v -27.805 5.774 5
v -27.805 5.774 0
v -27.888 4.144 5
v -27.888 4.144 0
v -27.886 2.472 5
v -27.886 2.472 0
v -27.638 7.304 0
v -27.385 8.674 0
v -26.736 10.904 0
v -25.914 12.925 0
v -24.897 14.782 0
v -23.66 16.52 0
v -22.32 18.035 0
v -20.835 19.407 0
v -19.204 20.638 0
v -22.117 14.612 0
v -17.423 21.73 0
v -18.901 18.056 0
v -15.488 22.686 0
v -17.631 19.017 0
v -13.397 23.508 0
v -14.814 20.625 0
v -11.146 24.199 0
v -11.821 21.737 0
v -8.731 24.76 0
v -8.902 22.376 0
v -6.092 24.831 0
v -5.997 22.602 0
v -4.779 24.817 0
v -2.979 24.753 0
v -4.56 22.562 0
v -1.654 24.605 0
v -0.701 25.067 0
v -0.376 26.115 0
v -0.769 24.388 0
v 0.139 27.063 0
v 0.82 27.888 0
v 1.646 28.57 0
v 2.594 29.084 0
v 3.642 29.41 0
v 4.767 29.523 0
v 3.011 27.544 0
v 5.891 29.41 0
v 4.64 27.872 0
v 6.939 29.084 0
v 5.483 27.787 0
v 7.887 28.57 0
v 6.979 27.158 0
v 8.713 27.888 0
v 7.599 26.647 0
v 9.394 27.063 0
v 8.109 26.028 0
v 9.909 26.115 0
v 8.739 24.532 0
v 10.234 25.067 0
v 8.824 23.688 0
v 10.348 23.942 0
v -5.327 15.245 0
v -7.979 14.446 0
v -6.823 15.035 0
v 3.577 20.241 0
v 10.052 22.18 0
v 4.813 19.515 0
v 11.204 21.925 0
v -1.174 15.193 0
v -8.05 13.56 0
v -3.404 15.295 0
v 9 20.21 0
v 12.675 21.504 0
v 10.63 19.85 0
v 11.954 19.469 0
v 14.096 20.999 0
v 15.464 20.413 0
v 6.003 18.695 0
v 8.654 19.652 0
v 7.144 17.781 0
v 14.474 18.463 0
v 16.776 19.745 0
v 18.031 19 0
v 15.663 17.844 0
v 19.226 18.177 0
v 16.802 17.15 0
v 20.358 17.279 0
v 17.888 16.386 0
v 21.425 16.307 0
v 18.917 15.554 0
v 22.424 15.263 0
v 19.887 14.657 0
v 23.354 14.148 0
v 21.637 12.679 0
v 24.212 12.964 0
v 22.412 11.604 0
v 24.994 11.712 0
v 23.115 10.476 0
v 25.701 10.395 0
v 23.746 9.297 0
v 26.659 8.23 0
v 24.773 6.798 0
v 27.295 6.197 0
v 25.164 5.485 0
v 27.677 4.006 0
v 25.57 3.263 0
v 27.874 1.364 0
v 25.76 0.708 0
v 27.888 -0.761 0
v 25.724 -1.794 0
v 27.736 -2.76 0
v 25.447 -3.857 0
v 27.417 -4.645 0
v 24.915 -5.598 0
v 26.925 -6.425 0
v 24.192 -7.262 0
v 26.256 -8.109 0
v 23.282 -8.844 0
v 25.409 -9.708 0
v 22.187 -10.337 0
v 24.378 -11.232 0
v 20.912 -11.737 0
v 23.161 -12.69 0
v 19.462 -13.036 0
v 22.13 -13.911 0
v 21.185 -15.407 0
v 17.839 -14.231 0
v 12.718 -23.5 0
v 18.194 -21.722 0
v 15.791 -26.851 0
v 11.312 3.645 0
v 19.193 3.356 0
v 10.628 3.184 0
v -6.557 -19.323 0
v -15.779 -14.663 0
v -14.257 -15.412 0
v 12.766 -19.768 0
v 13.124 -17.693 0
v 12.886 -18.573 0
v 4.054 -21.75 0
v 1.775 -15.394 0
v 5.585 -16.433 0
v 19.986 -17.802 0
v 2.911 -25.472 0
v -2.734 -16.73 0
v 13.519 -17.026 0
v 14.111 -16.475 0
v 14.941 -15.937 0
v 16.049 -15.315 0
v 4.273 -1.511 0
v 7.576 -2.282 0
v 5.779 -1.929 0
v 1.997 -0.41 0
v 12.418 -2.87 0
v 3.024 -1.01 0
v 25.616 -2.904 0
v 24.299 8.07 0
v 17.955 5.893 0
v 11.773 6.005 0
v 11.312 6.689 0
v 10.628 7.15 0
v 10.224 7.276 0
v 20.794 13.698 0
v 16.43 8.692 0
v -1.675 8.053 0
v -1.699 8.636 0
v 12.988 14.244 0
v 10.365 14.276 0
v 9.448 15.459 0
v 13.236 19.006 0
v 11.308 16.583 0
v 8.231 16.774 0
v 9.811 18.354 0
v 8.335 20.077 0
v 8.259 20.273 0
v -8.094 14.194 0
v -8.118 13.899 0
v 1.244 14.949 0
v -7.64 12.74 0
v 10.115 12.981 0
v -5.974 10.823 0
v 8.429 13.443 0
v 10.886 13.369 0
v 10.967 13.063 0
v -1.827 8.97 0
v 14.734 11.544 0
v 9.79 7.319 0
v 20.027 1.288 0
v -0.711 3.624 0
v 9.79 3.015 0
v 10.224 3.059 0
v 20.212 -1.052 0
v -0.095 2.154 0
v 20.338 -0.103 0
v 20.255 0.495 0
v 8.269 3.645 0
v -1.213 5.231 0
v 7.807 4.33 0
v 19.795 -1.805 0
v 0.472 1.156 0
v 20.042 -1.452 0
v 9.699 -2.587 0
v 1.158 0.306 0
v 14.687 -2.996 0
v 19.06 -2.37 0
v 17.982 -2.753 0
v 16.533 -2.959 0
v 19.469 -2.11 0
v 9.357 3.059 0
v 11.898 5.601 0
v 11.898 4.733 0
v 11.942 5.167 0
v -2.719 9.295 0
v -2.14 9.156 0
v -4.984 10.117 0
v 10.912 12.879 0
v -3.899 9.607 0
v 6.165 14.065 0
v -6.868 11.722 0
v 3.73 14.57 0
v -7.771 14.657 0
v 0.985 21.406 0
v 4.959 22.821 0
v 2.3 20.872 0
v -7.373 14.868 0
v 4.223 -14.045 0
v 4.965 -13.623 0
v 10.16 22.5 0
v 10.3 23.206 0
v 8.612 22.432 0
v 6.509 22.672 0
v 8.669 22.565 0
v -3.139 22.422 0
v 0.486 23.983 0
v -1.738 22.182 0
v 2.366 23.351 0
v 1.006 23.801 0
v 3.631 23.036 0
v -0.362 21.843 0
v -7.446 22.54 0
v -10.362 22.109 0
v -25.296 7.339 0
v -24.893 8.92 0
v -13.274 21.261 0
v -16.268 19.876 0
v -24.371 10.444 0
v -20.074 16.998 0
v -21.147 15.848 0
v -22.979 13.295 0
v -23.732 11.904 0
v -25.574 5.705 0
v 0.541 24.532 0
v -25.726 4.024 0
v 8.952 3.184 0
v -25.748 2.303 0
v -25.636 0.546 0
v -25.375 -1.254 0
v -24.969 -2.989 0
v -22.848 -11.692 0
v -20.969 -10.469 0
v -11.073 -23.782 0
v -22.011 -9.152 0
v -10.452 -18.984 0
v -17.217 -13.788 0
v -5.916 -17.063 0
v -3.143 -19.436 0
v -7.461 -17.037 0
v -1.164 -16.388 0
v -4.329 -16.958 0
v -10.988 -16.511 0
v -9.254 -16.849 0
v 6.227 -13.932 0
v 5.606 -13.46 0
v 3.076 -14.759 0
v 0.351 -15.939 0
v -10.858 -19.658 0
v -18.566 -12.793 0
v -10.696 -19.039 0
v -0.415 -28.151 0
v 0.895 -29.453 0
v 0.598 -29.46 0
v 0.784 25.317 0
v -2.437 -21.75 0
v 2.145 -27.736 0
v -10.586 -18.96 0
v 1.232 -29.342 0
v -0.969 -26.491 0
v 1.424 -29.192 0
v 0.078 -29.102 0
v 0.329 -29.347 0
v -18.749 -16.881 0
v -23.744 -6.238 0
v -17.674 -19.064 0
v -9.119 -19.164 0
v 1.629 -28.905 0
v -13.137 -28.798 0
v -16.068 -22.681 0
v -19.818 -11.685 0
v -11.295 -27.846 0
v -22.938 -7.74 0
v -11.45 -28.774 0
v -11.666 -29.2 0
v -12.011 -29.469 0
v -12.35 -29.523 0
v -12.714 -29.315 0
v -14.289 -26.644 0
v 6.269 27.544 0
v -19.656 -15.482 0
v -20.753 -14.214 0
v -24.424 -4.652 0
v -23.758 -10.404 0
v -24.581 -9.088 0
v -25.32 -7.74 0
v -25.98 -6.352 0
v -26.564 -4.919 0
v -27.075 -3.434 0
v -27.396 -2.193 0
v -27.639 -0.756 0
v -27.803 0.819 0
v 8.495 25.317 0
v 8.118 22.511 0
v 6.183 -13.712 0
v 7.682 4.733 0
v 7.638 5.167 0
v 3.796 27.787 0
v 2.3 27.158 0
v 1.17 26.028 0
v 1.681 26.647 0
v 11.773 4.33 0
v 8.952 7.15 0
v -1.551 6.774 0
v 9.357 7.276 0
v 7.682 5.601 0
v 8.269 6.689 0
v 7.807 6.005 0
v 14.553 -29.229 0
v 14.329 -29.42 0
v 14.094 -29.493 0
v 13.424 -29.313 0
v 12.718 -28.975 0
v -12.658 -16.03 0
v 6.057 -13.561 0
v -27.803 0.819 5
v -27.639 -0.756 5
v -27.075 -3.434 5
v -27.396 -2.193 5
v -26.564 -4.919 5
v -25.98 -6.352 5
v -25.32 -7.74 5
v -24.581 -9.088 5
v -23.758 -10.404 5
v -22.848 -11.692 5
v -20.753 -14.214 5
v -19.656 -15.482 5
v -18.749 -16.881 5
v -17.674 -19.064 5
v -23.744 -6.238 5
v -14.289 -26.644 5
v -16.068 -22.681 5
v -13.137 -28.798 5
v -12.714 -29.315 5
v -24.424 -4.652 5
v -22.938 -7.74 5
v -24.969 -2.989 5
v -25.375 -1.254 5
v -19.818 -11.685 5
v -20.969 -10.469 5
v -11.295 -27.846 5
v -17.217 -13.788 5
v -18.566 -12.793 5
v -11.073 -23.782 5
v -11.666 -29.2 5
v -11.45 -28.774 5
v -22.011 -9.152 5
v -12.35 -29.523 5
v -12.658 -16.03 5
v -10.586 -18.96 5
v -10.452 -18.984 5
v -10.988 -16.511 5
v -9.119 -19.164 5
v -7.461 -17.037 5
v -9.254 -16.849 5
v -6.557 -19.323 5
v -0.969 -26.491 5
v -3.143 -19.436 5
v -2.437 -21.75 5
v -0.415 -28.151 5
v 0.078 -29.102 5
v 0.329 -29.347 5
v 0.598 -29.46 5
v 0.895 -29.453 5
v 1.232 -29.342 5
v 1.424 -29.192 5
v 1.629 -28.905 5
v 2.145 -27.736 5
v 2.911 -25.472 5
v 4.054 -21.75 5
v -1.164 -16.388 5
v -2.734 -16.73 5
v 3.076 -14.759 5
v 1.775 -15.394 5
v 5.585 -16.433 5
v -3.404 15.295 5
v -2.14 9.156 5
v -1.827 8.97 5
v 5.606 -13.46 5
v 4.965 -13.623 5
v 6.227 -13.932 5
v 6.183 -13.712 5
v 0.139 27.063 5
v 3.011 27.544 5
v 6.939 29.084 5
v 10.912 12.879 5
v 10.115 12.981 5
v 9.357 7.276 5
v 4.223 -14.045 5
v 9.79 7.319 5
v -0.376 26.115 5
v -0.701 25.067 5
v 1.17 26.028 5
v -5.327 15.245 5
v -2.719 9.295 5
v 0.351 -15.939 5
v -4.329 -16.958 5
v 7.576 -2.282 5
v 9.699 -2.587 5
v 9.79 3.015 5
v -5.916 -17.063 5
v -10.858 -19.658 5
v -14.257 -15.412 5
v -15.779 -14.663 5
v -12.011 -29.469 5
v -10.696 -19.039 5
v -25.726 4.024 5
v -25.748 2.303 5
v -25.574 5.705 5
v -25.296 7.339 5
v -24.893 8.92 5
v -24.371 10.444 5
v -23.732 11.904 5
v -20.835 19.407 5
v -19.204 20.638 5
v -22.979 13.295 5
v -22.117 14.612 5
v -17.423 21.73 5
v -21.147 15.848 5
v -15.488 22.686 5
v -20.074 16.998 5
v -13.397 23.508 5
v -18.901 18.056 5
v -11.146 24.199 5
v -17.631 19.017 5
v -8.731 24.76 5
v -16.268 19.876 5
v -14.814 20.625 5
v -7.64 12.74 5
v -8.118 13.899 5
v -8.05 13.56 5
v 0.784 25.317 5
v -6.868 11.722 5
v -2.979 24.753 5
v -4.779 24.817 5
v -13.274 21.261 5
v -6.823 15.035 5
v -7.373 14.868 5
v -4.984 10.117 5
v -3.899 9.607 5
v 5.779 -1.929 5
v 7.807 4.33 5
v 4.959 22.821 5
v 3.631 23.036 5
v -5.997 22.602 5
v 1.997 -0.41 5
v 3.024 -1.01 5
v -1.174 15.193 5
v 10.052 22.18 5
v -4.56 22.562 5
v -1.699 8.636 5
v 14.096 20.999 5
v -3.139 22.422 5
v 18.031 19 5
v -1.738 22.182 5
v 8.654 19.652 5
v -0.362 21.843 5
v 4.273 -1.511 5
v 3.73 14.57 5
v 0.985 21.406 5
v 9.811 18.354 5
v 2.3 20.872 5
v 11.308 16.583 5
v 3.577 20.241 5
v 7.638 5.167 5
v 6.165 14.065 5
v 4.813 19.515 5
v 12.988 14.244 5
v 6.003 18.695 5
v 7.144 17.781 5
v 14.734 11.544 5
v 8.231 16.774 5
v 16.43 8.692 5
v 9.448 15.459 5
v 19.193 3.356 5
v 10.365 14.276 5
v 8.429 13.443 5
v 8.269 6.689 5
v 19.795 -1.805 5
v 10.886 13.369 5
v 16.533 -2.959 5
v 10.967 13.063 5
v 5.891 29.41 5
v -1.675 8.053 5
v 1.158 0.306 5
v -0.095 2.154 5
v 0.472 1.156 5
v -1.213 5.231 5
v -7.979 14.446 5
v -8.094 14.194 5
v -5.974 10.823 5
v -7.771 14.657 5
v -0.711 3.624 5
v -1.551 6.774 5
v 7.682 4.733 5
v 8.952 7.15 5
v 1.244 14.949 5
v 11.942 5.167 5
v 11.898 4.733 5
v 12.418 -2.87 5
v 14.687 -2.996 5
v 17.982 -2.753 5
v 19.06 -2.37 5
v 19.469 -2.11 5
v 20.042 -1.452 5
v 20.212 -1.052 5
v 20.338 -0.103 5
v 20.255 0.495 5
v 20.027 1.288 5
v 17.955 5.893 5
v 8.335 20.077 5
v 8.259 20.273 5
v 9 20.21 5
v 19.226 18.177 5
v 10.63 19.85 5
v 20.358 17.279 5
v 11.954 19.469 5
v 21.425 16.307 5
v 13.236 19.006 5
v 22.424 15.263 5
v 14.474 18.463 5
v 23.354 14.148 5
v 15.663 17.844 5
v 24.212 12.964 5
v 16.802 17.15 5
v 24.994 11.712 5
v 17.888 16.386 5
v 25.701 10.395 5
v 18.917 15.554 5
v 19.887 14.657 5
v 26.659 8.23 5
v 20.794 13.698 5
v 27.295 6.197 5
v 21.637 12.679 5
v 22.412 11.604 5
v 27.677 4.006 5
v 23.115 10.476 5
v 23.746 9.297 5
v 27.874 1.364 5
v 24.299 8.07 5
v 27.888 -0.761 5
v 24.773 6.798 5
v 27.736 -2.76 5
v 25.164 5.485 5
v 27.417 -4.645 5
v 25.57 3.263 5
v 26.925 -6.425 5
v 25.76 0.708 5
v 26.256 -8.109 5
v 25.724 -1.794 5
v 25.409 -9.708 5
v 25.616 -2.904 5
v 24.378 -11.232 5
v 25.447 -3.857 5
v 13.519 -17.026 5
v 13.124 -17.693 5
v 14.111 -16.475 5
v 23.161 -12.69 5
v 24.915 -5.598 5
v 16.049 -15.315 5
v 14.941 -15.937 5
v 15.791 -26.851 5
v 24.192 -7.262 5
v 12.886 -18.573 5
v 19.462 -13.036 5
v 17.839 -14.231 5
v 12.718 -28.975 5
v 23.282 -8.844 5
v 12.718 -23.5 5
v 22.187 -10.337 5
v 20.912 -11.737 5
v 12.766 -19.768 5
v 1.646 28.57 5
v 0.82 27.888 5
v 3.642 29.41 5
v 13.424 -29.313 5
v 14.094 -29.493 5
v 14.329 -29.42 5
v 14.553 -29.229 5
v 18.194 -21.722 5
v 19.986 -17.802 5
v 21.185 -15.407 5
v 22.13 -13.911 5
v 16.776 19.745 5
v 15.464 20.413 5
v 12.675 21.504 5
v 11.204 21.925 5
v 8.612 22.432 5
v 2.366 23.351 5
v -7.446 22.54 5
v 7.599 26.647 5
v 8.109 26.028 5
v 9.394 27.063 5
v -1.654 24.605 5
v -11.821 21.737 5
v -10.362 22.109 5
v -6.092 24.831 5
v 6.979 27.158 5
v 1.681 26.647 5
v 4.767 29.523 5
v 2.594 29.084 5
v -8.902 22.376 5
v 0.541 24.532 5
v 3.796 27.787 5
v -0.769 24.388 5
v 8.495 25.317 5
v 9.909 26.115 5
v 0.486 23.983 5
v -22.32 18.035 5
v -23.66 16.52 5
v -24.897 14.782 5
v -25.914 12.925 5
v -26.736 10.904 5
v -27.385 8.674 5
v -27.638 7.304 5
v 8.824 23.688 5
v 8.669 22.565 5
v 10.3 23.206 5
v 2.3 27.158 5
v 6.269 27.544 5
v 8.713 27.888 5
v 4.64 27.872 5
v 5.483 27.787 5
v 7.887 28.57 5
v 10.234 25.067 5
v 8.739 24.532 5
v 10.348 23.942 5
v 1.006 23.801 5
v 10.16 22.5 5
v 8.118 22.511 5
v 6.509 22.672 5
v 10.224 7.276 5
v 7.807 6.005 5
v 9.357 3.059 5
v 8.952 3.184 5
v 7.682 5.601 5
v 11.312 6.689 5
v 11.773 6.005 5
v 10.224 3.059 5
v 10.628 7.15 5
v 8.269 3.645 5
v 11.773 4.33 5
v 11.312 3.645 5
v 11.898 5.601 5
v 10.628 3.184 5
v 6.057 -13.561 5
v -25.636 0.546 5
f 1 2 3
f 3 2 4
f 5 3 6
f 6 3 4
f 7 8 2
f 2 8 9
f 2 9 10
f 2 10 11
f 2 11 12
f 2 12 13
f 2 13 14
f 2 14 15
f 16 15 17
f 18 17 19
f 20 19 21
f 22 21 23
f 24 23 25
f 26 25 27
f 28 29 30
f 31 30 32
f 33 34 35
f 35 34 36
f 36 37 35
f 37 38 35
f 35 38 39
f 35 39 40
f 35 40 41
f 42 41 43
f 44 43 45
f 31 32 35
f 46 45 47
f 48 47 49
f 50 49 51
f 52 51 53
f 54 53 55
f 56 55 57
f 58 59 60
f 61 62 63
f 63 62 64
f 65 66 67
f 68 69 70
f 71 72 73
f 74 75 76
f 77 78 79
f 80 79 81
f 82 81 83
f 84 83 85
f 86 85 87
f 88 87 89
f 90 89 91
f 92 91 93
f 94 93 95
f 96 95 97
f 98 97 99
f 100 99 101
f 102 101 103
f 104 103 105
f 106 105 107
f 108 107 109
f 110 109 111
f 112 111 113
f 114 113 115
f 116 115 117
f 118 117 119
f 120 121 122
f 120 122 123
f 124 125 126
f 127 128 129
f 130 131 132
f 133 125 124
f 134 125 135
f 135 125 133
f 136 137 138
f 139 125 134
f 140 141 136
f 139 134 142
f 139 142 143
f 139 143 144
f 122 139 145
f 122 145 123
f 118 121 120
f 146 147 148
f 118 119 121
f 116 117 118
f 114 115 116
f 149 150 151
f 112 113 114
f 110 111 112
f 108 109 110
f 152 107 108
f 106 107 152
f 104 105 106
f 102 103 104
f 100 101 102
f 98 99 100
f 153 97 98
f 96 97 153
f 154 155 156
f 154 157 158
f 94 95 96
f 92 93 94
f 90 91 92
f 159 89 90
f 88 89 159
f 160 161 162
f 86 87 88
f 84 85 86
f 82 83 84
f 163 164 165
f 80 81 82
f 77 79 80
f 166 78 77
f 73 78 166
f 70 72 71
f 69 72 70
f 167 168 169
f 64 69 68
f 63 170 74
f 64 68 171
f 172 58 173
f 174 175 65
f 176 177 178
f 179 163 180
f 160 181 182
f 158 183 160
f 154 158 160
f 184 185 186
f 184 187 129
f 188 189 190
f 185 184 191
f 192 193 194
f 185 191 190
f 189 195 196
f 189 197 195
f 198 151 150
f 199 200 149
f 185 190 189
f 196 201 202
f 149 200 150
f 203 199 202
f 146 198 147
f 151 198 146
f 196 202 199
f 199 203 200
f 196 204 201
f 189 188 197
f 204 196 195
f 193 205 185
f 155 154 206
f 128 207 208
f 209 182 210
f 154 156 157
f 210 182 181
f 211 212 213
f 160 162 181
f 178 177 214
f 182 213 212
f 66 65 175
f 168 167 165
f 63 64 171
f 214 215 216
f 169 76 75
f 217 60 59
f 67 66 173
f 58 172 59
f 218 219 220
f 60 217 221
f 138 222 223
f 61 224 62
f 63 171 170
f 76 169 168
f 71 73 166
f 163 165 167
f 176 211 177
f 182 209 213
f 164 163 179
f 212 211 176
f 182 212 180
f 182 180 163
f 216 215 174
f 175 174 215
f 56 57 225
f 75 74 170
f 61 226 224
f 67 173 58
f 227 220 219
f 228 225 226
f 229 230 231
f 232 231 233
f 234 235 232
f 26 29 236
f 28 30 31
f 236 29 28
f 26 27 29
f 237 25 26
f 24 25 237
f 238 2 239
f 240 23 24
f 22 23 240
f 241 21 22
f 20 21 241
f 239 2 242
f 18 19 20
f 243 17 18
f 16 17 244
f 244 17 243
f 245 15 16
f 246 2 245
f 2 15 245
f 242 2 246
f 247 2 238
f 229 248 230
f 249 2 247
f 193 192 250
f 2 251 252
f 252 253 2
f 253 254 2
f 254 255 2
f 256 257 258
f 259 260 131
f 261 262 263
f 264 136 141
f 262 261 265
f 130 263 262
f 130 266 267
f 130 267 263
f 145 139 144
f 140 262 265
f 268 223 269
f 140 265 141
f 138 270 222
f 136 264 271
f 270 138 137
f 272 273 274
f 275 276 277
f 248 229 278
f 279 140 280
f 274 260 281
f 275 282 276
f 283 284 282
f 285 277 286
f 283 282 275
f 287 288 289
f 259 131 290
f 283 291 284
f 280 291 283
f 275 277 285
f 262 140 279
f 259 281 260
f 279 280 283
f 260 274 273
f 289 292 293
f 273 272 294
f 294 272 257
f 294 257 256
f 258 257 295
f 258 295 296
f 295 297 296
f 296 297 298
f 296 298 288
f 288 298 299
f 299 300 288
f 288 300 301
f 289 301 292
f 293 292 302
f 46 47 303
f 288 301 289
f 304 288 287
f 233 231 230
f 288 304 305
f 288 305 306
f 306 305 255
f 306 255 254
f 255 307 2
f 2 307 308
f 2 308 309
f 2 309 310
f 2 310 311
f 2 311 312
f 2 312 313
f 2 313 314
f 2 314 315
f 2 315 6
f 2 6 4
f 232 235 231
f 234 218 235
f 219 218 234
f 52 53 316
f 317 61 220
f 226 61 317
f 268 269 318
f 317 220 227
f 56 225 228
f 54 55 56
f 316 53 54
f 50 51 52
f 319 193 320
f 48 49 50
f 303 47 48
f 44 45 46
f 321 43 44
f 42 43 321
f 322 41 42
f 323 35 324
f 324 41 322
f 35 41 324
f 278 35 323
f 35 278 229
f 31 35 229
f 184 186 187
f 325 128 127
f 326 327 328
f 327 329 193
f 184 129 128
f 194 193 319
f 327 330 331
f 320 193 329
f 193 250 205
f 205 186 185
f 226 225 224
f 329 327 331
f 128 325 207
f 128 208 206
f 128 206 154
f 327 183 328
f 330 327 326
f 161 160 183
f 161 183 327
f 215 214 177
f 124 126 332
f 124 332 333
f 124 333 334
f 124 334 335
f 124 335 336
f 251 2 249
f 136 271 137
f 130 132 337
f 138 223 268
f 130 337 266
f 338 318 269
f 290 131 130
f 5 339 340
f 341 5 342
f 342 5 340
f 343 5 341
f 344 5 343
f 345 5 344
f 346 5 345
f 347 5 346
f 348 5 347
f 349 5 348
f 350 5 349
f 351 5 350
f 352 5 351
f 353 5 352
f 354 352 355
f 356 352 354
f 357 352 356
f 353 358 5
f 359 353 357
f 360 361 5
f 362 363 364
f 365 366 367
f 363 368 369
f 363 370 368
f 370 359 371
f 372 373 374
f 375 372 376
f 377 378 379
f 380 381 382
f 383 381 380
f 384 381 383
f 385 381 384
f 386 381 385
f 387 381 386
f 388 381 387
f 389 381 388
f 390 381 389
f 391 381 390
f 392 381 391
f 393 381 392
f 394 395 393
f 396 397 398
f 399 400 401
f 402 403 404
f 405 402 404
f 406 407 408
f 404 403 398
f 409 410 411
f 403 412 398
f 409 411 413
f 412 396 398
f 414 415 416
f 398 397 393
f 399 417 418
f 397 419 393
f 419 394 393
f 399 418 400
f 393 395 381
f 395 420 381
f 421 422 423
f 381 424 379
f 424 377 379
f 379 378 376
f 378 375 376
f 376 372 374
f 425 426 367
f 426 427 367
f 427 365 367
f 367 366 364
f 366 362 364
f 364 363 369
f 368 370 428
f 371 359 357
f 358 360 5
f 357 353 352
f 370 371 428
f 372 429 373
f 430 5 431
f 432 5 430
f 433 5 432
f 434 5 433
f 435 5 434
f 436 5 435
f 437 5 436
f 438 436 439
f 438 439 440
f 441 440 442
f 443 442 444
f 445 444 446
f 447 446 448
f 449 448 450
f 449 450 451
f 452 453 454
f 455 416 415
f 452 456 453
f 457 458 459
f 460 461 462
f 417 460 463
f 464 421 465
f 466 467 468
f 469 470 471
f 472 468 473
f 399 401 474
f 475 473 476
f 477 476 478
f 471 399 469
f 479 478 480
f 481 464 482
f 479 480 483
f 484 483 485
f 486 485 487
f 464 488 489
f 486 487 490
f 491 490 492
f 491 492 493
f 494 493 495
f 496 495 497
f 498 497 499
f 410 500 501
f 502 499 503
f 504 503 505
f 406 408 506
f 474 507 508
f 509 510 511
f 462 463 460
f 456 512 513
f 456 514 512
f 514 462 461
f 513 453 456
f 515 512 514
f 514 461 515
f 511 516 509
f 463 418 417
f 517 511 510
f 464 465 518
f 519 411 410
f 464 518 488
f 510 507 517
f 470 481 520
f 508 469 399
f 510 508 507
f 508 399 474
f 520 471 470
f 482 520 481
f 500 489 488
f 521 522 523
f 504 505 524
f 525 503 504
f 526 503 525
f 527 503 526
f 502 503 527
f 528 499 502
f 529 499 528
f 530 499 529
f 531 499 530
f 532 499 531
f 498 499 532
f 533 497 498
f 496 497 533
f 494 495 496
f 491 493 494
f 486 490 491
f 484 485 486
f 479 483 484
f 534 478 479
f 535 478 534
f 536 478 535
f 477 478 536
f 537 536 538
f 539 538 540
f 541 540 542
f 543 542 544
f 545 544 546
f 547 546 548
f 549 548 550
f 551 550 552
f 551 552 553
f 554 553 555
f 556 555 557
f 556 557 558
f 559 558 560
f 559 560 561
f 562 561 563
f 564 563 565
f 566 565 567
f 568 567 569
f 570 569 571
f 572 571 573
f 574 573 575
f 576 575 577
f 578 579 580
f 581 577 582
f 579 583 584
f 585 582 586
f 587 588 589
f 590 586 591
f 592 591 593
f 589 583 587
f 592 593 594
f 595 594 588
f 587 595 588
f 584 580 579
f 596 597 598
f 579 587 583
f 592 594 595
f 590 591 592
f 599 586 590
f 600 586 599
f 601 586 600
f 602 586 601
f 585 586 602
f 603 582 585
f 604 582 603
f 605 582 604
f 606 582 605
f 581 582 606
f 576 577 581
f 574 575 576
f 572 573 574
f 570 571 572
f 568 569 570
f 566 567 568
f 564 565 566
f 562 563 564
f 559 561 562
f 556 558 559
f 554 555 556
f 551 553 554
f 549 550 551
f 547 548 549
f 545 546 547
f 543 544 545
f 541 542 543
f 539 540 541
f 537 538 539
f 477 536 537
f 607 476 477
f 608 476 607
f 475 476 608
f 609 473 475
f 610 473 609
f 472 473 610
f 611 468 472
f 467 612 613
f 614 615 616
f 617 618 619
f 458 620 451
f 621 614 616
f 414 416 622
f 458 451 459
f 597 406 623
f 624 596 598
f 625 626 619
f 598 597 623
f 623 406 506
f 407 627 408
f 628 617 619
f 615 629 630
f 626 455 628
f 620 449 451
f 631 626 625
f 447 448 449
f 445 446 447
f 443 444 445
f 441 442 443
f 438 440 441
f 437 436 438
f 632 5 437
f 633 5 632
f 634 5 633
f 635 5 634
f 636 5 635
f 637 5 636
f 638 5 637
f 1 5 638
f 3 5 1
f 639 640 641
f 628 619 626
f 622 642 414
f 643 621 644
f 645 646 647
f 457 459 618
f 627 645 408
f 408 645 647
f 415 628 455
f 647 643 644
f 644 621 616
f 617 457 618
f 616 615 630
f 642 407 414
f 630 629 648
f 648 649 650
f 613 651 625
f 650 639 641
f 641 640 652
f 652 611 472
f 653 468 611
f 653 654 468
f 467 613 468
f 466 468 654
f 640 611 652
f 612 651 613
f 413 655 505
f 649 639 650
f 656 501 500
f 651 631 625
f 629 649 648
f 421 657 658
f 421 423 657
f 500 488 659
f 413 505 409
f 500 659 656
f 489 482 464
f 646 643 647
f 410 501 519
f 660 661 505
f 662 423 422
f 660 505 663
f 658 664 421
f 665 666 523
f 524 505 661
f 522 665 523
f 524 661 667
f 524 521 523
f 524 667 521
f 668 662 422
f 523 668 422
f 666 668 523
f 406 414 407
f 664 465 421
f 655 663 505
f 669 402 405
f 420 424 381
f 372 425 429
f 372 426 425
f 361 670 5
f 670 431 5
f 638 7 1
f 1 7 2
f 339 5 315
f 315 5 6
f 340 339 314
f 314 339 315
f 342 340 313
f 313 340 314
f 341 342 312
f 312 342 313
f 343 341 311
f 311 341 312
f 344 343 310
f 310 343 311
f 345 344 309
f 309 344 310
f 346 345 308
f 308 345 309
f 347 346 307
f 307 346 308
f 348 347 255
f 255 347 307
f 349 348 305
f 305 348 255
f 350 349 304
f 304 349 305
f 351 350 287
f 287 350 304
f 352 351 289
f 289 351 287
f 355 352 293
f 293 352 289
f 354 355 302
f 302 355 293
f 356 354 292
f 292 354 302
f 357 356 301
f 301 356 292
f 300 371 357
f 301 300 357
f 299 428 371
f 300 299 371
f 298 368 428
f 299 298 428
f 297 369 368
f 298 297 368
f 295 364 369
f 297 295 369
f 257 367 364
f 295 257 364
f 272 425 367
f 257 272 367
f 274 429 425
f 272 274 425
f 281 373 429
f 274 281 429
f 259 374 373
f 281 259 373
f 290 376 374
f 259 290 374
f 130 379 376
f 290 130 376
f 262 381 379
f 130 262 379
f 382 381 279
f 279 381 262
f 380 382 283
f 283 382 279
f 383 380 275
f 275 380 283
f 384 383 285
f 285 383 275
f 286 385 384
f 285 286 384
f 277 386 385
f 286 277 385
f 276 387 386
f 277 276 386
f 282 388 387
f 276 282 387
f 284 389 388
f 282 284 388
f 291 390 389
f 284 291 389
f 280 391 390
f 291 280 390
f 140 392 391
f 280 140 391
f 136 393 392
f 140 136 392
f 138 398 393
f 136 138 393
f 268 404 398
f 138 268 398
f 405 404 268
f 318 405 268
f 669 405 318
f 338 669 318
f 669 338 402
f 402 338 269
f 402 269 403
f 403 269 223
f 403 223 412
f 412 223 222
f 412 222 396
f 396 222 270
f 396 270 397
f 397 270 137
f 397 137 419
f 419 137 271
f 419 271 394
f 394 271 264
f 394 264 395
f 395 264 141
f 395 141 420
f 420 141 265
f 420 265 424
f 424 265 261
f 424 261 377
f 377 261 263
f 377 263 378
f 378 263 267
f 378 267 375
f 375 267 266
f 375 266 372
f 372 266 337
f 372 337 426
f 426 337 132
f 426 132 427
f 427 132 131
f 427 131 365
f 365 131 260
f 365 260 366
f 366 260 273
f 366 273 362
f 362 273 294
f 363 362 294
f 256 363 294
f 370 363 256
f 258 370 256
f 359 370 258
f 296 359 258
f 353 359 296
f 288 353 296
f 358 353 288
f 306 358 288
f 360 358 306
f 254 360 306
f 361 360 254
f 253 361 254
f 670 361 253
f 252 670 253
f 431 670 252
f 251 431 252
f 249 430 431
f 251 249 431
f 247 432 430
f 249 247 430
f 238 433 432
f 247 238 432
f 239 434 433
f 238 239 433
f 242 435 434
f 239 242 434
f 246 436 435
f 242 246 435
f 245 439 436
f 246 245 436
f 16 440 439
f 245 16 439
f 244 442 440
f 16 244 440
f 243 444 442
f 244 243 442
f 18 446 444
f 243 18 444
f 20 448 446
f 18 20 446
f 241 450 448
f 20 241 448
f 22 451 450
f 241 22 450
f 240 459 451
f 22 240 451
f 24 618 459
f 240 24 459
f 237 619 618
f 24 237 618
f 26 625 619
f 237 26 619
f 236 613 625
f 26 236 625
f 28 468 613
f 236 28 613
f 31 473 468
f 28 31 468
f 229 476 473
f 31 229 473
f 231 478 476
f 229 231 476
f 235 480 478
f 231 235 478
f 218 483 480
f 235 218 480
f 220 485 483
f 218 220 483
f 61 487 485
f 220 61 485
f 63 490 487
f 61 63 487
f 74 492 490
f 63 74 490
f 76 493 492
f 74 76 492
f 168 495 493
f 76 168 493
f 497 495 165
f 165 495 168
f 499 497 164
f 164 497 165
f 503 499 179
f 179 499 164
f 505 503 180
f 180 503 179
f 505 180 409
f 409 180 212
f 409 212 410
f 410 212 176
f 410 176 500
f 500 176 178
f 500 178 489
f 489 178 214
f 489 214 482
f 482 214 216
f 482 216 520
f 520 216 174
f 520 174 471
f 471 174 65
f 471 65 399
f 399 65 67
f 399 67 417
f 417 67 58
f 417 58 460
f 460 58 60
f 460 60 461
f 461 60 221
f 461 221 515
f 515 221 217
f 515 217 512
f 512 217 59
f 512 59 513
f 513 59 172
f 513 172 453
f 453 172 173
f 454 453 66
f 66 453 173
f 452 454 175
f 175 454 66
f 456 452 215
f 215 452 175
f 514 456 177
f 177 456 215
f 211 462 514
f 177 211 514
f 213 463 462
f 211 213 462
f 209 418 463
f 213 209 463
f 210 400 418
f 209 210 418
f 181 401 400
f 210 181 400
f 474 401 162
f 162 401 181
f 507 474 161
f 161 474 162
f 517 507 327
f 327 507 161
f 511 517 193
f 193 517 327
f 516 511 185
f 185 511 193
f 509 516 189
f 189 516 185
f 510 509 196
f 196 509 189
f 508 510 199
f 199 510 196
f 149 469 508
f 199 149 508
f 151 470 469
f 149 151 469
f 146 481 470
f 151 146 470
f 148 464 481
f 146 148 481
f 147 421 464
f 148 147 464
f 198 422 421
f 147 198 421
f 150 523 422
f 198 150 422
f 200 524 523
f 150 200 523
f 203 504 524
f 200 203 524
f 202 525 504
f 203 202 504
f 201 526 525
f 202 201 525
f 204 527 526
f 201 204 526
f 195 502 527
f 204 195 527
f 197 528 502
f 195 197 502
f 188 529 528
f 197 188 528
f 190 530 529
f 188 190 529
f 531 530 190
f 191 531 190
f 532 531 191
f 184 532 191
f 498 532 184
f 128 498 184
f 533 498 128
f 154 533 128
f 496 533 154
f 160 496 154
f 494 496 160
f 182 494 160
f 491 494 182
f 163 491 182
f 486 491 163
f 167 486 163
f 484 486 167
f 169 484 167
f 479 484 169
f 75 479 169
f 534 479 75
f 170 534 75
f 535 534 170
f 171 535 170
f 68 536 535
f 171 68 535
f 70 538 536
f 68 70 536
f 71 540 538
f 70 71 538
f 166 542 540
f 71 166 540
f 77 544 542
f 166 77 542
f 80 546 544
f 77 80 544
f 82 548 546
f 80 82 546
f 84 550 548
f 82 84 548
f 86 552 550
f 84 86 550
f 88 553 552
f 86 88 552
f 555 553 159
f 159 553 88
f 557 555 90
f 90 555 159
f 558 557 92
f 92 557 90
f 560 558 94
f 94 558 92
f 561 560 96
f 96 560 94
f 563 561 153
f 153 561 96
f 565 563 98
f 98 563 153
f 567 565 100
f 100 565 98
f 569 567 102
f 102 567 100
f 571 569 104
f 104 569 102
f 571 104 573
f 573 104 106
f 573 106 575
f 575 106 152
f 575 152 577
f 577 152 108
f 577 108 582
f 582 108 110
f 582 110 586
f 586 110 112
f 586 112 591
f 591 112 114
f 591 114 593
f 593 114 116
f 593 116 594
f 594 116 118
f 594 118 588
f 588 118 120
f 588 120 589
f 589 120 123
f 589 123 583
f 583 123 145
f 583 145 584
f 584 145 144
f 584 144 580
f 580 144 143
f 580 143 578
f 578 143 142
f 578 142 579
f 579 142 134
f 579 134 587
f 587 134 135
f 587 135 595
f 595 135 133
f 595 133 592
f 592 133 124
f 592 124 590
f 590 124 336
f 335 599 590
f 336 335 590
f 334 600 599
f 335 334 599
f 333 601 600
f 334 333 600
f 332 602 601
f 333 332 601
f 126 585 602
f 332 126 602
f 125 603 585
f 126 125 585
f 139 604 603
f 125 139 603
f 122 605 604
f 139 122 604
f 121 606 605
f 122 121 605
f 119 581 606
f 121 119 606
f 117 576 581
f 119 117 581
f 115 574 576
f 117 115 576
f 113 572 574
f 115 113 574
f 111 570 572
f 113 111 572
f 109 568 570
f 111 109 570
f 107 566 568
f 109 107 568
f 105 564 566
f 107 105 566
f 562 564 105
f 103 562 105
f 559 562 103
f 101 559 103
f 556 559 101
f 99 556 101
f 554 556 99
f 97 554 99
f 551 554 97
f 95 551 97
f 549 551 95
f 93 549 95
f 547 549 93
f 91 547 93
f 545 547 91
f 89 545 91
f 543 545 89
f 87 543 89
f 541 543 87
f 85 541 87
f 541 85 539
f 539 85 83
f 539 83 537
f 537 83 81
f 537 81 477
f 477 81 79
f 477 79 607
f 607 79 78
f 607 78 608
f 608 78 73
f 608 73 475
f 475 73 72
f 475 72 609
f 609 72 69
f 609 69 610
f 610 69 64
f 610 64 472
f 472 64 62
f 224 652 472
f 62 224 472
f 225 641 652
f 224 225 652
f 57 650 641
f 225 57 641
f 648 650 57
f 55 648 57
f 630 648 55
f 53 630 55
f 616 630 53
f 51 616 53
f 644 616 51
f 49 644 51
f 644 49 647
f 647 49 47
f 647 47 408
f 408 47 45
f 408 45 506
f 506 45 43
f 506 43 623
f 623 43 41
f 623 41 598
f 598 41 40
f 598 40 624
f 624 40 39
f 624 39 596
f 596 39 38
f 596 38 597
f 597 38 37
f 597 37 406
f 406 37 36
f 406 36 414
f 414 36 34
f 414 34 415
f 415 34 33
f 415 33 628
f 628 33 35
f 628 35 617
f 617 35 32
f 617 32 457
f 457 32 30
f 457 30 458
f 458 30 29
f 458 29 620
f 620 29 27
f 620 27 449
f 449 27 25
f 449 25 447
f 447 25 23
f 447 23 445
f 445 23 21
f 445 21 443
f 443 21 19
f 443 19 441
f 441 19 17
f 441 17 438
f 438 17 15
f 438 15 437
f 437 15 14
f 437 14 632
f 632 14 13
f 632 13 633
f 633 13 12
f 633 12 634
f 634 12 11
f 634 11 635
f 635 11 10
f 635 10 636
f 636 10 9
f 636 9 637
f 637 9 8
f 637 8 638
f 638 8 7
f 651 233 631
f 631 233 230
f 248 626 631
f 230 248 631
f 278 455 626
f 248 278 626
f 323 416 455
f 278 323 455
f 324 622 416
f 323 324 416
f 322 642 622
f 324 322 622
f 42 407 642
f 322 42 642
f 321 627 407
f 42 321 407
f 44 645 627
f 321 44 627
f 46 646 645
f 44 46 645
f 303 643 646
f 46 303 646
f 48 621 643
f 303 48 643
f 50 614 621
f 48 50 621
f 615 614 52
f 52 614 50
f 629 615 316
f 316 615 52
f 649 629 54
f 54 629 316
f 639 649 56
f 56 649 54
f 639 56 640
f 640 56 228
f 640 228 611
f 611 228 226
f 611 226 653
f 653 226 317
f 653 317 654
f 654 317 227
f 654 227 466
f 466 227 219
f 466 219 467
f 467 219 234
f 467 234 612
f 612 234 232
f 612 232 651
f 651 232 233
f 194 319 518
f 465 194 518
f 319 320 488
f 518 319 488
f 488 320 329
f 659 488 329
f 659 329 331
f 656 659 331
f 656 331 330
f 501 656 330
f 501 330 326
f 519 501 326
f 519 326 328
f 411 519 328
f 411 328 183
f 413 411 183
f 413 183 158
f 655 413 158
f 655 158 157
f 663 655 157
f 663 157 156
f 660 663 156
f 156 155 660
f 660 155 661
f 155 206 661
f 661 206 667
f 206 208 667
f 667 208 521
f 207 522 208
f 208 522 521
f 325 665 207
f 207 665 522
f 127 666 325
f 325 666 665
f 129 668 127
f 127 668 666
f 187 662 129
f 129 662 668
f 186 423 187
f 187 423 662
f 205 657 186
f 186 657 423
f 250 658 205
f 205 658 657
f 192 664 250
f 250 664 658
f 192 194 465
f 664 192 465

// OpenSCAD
fudge = 0.1;

module poly_path2982(h)
{
  scale([25.4/90, -25.4/90, 1]) union()
  {
    linear_extrude(height=h)
      polygon([[16.889746,-104.609375],[12.904391,-104.207618],[9.192420,-103.055359],[5.833352,-101.232118],[2.906706,-98.817416],[0.492003,-95.890770],[-1.331238,-92.531702],[-2.483497,-88.819730],[-2.885254,-84.834375],[-2.885254,-84.709375],[1.639746,-83.534375],[1.614746,-83.934375],[1.915796,-86.923123],[2.779282,-89.706394],[4.145711,-92.224694],[5.955591,-94.418531],[8.149428,-96.228410],[10.667728,-97.594840],[13.450999,-98.458326],[16.439746,-98.759375],[19.428494,-98.458326],[22.211764,-97.594840],[24.730064,-96.228410],[26.923901,-94.418531],[28.733781,-92.224694],[30.100210,-89.706394],[30.963697,-86.923123],[31.264746,-83.934375],[30.718352,-79.955864],[29.189746,-76.384375],[34.114746,-75.109375],[35.199021,-77.343335],[35.999379,-79.722971],[36.494921,-82.227059],[36.664746,-84.834375],[36.262989,-88.819730],[35.110730,-92.531702],[33.287489,-95.890770],[30.872786,-98.817416],[27.946141,-101.232118],[24.587072,-103.055359],[20.875101,-104.207618],[16.889746,-104.609375]]);
  }
}

module poly_path8(h)
{
  scale([25.4/90, -25.4/90, 1]) union()
  {
    difference()
    {
       linear_extrude(height=h)
         polygon([[-21.585254,-87.984375],[-30.935254,-87.734375],[-39.491895,-85.745508],[-47.469629,-83.298437],[-54.880176,-80.384961],[-61.735254,-76.996875],[-68.046582,-73.125977],[-73.825879,-68.764062],[-79.084863,-63.902930],[-83.835254,-58.534375],[-88.218066,-52.376562],[-91.822754,-45.796875],[-94.733691,-38.635937],[-97.035254,-30.734375],[-97.931348,-25.880469],[-98.522754,-20.459375],[-98.814160,-14.682031],[-98.810254,-8.759375],[-98.515723,-2.902344],[-97.935254,2.678125],[-97.073535,7.771094],[-95.935254,12.165625],[-94.123730,17.428711],[-92.055566,22.507813],[-89.717871,27.425195],[-87.097754,32.203125],[-84.182324,36.863867],[-80.958691,41.429688],[-73.535254,50.365625],[-69.647754,54.856250],[-66.435254,59.815625],[-62.622754,67.550000],[-56.935254,80.365625],[-50.630566,94.409375],[-46.547754,102.040625],[-45.049512,103.873437],[-43.758691,104.609375],[-42.559277,104.417188],[-41.335254,103.465625],[-40.571191,101.956250],[-40.022754,98.665625],[-39.235254,84.265625],[-38.472754,69.653125],[-37.899316,67.460938],[-37.511230,67.179883],[-37.035254,67.265625],[-32.310254,67.903125],[-23.235254,68.465625],[-11.135254,68.865625],[-8.635254,77.065625],[-3.435254,93.865625],[-1.471191,99.746875],[0.277246,103.115625],[1.167285,103.986719],[2.119434,104.384375],[3.172363,104.360156],[4.364746,103.965625],[5.044629,103.437305],[5.772559,102.420313],[7.602246,98.278125],[10.313184,90.254688],[14.364746,77.065625],[19.789746,58.228125],[22.064746,49.365625],[21.907324,48.587109],[21.461621,48.050000],[19.864746,47.690625],[17.592871,48.268750],[14.964746,49.765625],[10.901270,52.296484],[6.288184,54.543750],[1.241504,56.476953],[-4.122754,58.065625],[-9.688574,59.279297],[-15.339941,60.087500],[-20.960840,60.459766],[-26.435254,60.365625],[-32.788989,59.700024],[-38.935449,58.504883],[-44.852515,56.801440],[-50.518066,54.610938],[-55.909985,51.954614],[-61.006152,48.853711],[-65.784448,45.329468],[-70.222754,41.403125],[-74.298950,37.095923],[-77.990918,32.429102],[-81.276538,27.423901],[-84.133691,22.101563],[-86.540259,16.483325],[-88.474121,10.590430],[-89.913159,4.444116],[-90.835254,-1.934375],[-91.232153,-8.159570],[-91.155762,-14.259375],[-90.617944,-20.213867],[-89.630566,-26.003125],[-88.205493,-31.607227],[-86.354590,-37.006250],[-84.089722,-42.180273],[-81.422754,-47.109375],[-78.365552,-51.773633],[-74.929980,-56.153125],[-71.127905,-60.227930],[-66.971191,-63.978125],[-62.471704,-67.383789],[-57.641309,-70.425000],[-52.491870,-73.081836],[-47.035254,-75.334375],[-41.883838,-77.022388],[-36.714551,-78.338477],[-31.542334,-79.285718],[-26.382129,-79.867188],[-21.248877,-80.085962],[-16.157520,-79.945117],[-11.122998,-79.447729],[-6.160254,-78.596875],[-1.284229,-77.395630],[3.490137,-75.847070],[8.147900,-73.954272],[12.674121,-71.720312],[17.053857,-69.148267],[21.272168,-66.241211],[25.314111,-63.002222],[29.164746,-59.434375],[33.475684,-54.775000],[36.727246,-50.584375],[38.572559,-47.368750],[38.859473,-46.284766],[38.664746,-45.634375],[35.839746,-45.996875],[29.864746,-47.634375],[21.844824,-49.837109],[13.217871,-51.625000],[4.408105,-52.967578],[-4.160254,-53.834375],[-12.062988,-54.194922],[-18.875879,-54.018750],[-24.174707,-53.275391],[-26.123779,-52.681494],[-27.535254,-51.934375],[-28.271387,-51.188086],[-28.680566,-50.295312],[-28.763965,-49.250195],[-28.522754,-48.046875],[-27.071191,-45.142187],[-24.335254,-41.534375],[-21.166504,-38.348437],[-17.660254,-35.846875],[-13.816504,-34.039062],[-9.635254,-32.934375],[-7.580566,-32.443750],[-6.472754,-31.784375],[-6.021191,-30.600000],[-5.935254,-28.534375],[-5.496191,-24.003125],[-4.297754,-18.534375],[-2.518066,-12.840625],[-0.335254,-7.634375],[1.672559,-4.094727],[4.102246,-1.085937],[7.075684,1.451758],[10.714746,3.578125],[15.141309,5.352930],[20.477246,6.835938],[26.844434,8.086914],[34.364746,9.165625],[43.999121,10.169727],[52.039746,10.617188],[58.580371,10.485742],[63.714746,9.753125],[67.536621,8.397070],[68.984668,7.478296],[70.139746,6.395313],[71.013574,5.145337],[71.617871,3.725586],[72.064746,0.365625],[71.771094,-1.754224],[70.962402,-4.565039],[68.008496,-11.892187],[63.620215,-20.881055],[58.214746,-30.796875],[52.209277,-40.904883],[46.020996,-50.470312],[40.067090,-58.758398],[34.764746,-65.034375],[30.664746,-69.634375],[29.533496,-71.137500],[29.264746,-71.834375],[31.889746,-71.609375],[37.664746,-70.334375],[42.356396,-68.984912],[46.899512,-67.343359],[51.283838,-65.419971],[55.499121,-63.225000],[59.535107,-60.768701],[63.381543,-58.061328],[67.028174,-55.113135],[70.464746,-51.934375],[73.681006,-48.535303],[76.666699,-44.926172],[79.411572,-41.117236],[81.905371,-37.118750],[84.137842,-32.940967],[86.098730,-28.594141],[87.777783,-24.088525],[89.164746,-19.434375],[90.600684,-11.562500],[91.277246,-2.509375],[91.147559,6.356250],[90.765723,10.291016],[90.164746,13.665625],[88.282715,19.835742],[85.720996,25.732812],[82.493652,31.336914],[78.614746,36.628125],[74.098340,41.586523],[68.958496,46.192188],[63.209277,50.425195],[56.864746,54.265625],[52.941113,56.471484],[50.000684,58.375000],[47.901660,60.330078],[46.502246,62.690625],[45.660645,65.810547],[45.235059,70.043750],[45.064746,83.265625],[45.064746,102.665625],[47.564746,103.865625],[49.939746,104.503125],[50.770996,104.245313],[51.564746,103.565625],[55.952246,95.140625],[64.464746,76.965625],[70.814746,63.078125],[75.064746,54.590625],[78.414746,49.290625],[82.064746,44.965625],[86.379395,39.798828],[90.031934,34.400000],[93.035254,28.733984],[95.402246,22.765625],[97.145801,16.459766],[98.278809,9.781250],[98.814160,2.694922],[98.764746,-4.834375],[98.067871,-14.193750],[96.714746,-21.959375],[94.461621,-29.162500],[91.064746,-36.834375],[88.563037,-41.501001],[85.788574,-45.934570],[82.749854,-50.129370],[79.455371,-54.079687],[75.913623,-57.779810],[72.133105,-61.224023],[68.122314,-64.406616],[63.889746,-67.321875],[59.443896,-69.964087],[54.793262,-72.327539],[49.946338,-74.406519],[44.911621,-76.195313],[39.697607,-77.688208],[34.312793,-78.879492],[28.765674,-79.763452],[23.064746,-80.334375],[17.570996,-80.860937],[12.864746,-81.621875],[8.383496,-82.739062],[3.564746,-84.334375],[-1.579004,-86.134375],[-5.860254,-87.184375],[-10.554004,-87.709375],[-16.935254,-87.934375],[-21.585254,-87.984375]]);
       translate([0, 0, -fudge])
         linear_extrude(height=h+2*fudge)
           polygon([[34.689746,-25.934375],[36.226786,-25.779510],[37.658235,-25.335330],[40.081875,-23.701504],[41.715701,-21.277864],[42.159881,-19.846415],[42.314746,-18.309375],[42.159881,-16.772335],[41.715701,-15.340886],[40.081875,-12.917246],[37.658235,-11.283420],[36.226786,-10.839240],[34.689746,-10.684375],[33.152706,-10.839240],[31.721257,-11.283420],[29.297617,-12.917246],[27.663791,-15.340886],[27.219611,-16.772335],[27.064746,-18.309375],[27.219611,-19.846415],[27.663791,-21.277864],[29.297617,-23.701504],[31.721257,-25.335330],[33.152706,-25.779510],[34.689746,-25.934375]]);
    }
  }
}

poly_path2982(5);
poly_path8(5);
